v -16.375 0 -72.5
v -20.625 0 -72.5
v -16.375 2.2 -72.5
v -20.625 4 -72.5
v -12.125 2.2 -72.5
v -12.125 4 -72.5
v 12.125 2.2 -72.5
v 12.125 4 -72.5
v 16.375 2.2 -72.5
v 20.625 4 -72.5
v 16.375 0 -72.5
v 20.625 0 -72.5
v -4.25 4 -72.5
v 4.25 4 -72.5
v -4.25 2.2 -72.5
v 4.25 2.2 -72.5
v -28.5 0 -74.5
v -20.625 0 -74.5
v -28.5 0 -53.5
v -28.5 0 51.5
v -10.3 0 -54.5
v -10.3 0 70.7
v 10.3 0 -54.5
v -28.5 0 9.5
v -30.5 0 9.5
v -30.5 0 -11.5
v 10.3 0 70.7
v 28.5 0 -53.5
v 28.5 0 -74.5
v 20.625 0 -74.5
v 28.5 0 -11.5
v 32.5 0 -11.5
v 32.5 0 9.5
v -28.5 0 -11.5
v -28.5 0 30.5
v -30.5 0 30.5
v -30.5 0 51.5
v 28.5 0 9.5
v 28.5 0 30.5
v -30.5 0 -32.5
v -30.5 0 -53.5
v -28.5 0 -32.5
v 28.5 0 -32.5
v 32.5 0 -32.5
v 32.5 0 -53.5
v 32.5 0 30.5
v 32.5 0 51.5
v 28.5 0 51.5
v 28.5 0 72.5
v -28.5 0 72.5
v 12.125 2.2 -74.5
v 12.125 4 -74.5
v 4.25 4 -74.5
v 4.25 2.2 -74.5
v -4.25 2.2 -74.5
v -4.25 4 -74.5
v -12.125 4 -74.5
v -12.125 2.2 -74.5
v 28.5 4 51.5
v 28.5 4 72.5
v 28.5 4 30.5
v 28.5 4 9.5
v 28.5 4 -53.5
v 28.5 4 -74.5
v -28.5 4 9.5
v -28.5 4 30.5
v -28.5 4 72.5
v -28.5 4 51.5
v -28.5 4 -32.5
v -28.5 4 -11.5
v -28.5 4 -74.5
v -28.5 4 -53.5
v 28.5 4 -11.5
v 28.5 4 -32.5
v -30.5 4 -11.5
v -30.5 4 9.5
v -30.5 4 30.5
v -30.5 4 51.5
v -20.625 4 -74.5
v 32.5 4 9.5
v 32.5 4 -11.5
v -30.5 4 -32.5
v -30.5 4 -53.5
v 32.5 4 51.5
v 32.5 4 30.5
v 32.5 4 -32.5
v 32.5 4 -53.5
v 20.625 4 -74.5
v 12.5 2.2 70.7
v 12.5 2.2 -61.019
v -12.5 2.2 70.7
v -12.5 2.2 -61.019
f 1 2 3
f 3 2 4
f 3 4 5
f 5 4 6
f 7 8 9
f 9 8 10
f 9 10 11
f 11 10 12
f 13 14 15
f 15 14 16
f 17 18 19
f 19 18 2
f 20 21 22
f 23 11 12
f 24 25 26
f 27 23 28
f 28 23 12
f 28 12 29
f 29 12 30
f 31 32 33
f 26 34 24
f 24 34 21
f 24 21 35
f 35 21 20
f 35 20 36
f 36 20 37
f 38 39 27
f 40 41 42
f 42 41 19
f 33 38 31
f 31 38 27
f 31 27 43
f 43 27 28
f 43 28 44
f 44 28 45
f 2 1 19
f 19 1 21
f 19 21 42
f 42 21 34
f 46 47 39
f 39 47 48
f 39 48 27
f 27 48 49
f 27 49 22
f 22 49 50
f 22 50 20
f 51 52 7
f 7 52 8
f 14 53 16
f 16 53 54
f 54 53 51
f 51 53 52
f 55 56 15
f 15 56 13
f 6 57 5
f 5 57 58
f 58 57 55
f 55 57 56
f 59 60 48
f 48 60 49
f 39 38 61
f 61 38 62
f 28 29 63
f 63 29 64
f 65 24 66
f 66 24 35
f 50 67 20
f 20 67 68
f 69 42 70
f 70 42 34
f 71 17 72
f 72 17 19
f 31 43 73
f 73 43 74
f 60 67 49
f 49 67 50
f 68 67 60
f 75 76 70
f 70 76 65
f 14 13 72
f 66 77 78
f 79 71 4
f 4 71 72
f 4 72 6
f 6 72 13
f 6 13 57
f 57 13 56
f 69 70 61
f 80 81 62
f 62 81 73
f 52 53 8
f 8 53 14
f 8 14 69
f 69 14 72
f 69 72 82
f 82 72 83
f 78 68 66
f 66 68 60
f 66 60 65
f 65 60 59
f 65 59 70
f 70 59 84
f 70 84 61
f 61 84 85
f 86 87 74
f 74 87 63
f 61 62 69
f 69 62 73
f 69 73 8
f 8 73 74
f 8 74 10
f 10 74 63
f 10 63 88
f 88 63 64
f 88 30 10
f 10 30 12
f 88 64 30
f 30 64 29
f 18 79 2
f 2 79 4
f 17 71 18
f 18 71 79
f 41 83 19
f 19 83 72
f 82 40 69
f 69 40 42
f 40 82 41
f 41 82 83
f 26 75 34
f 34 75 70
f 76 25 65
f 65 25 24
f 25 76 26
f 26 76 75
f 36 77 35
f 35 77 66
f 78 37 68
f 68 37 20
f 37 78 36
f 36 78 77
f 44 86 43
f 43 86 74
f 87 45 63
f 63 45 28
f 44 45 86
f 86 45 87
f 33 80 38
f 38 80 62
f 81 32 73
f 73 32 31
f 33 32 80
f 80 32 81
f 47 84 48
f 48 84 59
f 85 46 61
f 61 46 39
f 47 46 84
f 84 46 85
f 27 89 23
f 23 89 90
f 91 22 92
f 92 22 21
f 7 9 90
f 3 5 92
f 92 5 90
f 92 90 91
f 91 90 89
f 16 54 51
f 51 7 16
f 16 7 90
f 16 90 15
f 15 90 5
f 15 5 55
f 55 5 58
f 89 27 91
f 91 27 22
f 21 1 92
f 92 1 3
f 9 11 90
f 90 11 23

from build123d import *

# Parameters (mm, degrees)
SKETCH_4_W          = 57
SKETCH_4_H          = 145
EXTRUDE_1_DEPTH     = 4
SKETCH_5_W          = 7.875
SKETCH_5_H          = 4
EXTRUDE_2_DEPTH     = 2
SKETCH_6_W          = 21
SKETCH_6_H          = 4
EXTRUDE_3_DEPTH     = 2
EXTRUDE_START       = -57
SKETCH_6_2_W        = 21
SKETCH_6_2_H        = 4
EXTRUDE_4_DEPTH     = 4
CUT_EXTRUDE_START   = -1.8
SKETCH_7_W          = 10.3
SKETCH_7_H          = 2.2
CUT_EXTRUDE_1_DEPTH = 149.802954818
CUT_EXTRUDE_2_DEPTH = 82.310146968


with BuildPart() as part:
    # 草图4 → 凸台-拉伸1 (new body)
    with BuildSketch(Plane(origin=(0, 0, 0), x_dir=(1, 0, 0), z_dir=(0, 1, 0))):
        Rectangle(SKETCH_4_W, SKETCH_4_H)
    extrude(amount=EXTRUDE_1_DEPTH)

    # 草图5 → 凸台-拉伸2 (add)
    with BuildSketch(Plane(origin=(0, 0, -72.5), x_dir=(-1, 0, 0), z_dir=(0, 0, -1))):
        with Locations((-24.5625, 2)):
            Rectangle(SKETCH_5_W, SKETCH_5_H)
        with Locations((-8.1875, 2)):
            Rectangle(SKETCH_5_W, SKETCH_5_H)
        with Locations((8.1875, 2)):
            Rectangle(SKETCH_5_W, SKETCH_5_H)
        with Locations((24.5625, 2)):
            Rectangle(SKETCH_5_W, SKETCH_5_H)
    extrude(amount=EXTRUDE_2_DEPTH)

    # 草图6 → 凸台-拉伸3 (add)
    with BuildSketch(Plane.ZY.offset(28.5)):
        with Locations((-43, 2)):
            Rectangle(SKETCH_6_W, SKETCH_6_H)
        with Locations((-1, 2)):
            Rectangle(SKETCH_6_W, SKETCH_6_H)
        with Locations((41, 2)):
            Rectangle(SKETCH_6_W, SKETCH_6_H)
    extrude(amount=EXTRUDE_3_DEPTH)

    # 草图6<2> → 凸台-拉伸4 (add)
    with BuildSketch(Plane.ZY.offset(28.5).offset(EXTRUDE_START)):
        with Locations((-43, 2)):
            Rectangle(SKETCH_6_2_W, SKETCH_6_2_H)
        with Locations((-1, 2)):
            Rectangle(SKETCH_6_2_W, SKETCH_6_2_H)
        with Locations((41, 2)):
            Rectangle(SKETCH_6_2_W, SKETCH_6_2_H)
    extrude(amount=-EXTRUDE_4_DEPTH)

    # 草图7 → 切除-拉伸1 (cut, through all)
    with BuildSketch(Plane.XY.offset(72.5).offset(CUT_EXTRUDE_START)):
        Polygon((-10.3, 2.2), (-10.3, 0), (-12.5, 2.2), align=None)
        with Locations((-5.15, 1.1)):
            Rectangle(SKETCH_7_W, SKETCH_7_H)
        with Locations((5.15, 1.1)):
            Rectangle(SKETCH_7_W, SKETCH_7_H)
        Polygon((10.3, 2.2), (12.5, 2.2), (10.3, 0), align=None)
    extrude(amount=-CUT_EXTRUDE_1_DEPTH, mode=Mode.SUBTRACT)

    # 草图8 → 切除-拉伸2 (cut, through all)
    with BuildSketch(Plane.XZ.offset(-2.2)):
        Polygon((-12.5, -61.018518519), (-16.375, -72.5), (-12.5, -72.5), align=None)
        Polygon((-10.3, -54.5), (-12.5, -61.018518519), (-12.5, -72.5), (-12.125, -72.5), (-4.25, -72.5), (4.25, -72.5), (12.125, -72.5), (12.5, -72.5), (12.5, -61.018518519), (10.3, -54.5), align=None)
        Polygon((12.5, -72.5), (16.375, -72.5), (12.5, -61.018518519), align=None)
    extrude(amount=CUT_EXTRUDE_2_DEPTH, mode=Mode.SUBTRACT)


with BuildPart() as cut_extrude_2_kept_piece:
    # of the separate pieces the step leaves, the one the design keeps (cut_extrude_2_pieces_kept)
    add(part.part.solids().sort_by_distance((-28.5, 0, 72.5))[0])


solid = cut_extrude_2_kept_piece.part
